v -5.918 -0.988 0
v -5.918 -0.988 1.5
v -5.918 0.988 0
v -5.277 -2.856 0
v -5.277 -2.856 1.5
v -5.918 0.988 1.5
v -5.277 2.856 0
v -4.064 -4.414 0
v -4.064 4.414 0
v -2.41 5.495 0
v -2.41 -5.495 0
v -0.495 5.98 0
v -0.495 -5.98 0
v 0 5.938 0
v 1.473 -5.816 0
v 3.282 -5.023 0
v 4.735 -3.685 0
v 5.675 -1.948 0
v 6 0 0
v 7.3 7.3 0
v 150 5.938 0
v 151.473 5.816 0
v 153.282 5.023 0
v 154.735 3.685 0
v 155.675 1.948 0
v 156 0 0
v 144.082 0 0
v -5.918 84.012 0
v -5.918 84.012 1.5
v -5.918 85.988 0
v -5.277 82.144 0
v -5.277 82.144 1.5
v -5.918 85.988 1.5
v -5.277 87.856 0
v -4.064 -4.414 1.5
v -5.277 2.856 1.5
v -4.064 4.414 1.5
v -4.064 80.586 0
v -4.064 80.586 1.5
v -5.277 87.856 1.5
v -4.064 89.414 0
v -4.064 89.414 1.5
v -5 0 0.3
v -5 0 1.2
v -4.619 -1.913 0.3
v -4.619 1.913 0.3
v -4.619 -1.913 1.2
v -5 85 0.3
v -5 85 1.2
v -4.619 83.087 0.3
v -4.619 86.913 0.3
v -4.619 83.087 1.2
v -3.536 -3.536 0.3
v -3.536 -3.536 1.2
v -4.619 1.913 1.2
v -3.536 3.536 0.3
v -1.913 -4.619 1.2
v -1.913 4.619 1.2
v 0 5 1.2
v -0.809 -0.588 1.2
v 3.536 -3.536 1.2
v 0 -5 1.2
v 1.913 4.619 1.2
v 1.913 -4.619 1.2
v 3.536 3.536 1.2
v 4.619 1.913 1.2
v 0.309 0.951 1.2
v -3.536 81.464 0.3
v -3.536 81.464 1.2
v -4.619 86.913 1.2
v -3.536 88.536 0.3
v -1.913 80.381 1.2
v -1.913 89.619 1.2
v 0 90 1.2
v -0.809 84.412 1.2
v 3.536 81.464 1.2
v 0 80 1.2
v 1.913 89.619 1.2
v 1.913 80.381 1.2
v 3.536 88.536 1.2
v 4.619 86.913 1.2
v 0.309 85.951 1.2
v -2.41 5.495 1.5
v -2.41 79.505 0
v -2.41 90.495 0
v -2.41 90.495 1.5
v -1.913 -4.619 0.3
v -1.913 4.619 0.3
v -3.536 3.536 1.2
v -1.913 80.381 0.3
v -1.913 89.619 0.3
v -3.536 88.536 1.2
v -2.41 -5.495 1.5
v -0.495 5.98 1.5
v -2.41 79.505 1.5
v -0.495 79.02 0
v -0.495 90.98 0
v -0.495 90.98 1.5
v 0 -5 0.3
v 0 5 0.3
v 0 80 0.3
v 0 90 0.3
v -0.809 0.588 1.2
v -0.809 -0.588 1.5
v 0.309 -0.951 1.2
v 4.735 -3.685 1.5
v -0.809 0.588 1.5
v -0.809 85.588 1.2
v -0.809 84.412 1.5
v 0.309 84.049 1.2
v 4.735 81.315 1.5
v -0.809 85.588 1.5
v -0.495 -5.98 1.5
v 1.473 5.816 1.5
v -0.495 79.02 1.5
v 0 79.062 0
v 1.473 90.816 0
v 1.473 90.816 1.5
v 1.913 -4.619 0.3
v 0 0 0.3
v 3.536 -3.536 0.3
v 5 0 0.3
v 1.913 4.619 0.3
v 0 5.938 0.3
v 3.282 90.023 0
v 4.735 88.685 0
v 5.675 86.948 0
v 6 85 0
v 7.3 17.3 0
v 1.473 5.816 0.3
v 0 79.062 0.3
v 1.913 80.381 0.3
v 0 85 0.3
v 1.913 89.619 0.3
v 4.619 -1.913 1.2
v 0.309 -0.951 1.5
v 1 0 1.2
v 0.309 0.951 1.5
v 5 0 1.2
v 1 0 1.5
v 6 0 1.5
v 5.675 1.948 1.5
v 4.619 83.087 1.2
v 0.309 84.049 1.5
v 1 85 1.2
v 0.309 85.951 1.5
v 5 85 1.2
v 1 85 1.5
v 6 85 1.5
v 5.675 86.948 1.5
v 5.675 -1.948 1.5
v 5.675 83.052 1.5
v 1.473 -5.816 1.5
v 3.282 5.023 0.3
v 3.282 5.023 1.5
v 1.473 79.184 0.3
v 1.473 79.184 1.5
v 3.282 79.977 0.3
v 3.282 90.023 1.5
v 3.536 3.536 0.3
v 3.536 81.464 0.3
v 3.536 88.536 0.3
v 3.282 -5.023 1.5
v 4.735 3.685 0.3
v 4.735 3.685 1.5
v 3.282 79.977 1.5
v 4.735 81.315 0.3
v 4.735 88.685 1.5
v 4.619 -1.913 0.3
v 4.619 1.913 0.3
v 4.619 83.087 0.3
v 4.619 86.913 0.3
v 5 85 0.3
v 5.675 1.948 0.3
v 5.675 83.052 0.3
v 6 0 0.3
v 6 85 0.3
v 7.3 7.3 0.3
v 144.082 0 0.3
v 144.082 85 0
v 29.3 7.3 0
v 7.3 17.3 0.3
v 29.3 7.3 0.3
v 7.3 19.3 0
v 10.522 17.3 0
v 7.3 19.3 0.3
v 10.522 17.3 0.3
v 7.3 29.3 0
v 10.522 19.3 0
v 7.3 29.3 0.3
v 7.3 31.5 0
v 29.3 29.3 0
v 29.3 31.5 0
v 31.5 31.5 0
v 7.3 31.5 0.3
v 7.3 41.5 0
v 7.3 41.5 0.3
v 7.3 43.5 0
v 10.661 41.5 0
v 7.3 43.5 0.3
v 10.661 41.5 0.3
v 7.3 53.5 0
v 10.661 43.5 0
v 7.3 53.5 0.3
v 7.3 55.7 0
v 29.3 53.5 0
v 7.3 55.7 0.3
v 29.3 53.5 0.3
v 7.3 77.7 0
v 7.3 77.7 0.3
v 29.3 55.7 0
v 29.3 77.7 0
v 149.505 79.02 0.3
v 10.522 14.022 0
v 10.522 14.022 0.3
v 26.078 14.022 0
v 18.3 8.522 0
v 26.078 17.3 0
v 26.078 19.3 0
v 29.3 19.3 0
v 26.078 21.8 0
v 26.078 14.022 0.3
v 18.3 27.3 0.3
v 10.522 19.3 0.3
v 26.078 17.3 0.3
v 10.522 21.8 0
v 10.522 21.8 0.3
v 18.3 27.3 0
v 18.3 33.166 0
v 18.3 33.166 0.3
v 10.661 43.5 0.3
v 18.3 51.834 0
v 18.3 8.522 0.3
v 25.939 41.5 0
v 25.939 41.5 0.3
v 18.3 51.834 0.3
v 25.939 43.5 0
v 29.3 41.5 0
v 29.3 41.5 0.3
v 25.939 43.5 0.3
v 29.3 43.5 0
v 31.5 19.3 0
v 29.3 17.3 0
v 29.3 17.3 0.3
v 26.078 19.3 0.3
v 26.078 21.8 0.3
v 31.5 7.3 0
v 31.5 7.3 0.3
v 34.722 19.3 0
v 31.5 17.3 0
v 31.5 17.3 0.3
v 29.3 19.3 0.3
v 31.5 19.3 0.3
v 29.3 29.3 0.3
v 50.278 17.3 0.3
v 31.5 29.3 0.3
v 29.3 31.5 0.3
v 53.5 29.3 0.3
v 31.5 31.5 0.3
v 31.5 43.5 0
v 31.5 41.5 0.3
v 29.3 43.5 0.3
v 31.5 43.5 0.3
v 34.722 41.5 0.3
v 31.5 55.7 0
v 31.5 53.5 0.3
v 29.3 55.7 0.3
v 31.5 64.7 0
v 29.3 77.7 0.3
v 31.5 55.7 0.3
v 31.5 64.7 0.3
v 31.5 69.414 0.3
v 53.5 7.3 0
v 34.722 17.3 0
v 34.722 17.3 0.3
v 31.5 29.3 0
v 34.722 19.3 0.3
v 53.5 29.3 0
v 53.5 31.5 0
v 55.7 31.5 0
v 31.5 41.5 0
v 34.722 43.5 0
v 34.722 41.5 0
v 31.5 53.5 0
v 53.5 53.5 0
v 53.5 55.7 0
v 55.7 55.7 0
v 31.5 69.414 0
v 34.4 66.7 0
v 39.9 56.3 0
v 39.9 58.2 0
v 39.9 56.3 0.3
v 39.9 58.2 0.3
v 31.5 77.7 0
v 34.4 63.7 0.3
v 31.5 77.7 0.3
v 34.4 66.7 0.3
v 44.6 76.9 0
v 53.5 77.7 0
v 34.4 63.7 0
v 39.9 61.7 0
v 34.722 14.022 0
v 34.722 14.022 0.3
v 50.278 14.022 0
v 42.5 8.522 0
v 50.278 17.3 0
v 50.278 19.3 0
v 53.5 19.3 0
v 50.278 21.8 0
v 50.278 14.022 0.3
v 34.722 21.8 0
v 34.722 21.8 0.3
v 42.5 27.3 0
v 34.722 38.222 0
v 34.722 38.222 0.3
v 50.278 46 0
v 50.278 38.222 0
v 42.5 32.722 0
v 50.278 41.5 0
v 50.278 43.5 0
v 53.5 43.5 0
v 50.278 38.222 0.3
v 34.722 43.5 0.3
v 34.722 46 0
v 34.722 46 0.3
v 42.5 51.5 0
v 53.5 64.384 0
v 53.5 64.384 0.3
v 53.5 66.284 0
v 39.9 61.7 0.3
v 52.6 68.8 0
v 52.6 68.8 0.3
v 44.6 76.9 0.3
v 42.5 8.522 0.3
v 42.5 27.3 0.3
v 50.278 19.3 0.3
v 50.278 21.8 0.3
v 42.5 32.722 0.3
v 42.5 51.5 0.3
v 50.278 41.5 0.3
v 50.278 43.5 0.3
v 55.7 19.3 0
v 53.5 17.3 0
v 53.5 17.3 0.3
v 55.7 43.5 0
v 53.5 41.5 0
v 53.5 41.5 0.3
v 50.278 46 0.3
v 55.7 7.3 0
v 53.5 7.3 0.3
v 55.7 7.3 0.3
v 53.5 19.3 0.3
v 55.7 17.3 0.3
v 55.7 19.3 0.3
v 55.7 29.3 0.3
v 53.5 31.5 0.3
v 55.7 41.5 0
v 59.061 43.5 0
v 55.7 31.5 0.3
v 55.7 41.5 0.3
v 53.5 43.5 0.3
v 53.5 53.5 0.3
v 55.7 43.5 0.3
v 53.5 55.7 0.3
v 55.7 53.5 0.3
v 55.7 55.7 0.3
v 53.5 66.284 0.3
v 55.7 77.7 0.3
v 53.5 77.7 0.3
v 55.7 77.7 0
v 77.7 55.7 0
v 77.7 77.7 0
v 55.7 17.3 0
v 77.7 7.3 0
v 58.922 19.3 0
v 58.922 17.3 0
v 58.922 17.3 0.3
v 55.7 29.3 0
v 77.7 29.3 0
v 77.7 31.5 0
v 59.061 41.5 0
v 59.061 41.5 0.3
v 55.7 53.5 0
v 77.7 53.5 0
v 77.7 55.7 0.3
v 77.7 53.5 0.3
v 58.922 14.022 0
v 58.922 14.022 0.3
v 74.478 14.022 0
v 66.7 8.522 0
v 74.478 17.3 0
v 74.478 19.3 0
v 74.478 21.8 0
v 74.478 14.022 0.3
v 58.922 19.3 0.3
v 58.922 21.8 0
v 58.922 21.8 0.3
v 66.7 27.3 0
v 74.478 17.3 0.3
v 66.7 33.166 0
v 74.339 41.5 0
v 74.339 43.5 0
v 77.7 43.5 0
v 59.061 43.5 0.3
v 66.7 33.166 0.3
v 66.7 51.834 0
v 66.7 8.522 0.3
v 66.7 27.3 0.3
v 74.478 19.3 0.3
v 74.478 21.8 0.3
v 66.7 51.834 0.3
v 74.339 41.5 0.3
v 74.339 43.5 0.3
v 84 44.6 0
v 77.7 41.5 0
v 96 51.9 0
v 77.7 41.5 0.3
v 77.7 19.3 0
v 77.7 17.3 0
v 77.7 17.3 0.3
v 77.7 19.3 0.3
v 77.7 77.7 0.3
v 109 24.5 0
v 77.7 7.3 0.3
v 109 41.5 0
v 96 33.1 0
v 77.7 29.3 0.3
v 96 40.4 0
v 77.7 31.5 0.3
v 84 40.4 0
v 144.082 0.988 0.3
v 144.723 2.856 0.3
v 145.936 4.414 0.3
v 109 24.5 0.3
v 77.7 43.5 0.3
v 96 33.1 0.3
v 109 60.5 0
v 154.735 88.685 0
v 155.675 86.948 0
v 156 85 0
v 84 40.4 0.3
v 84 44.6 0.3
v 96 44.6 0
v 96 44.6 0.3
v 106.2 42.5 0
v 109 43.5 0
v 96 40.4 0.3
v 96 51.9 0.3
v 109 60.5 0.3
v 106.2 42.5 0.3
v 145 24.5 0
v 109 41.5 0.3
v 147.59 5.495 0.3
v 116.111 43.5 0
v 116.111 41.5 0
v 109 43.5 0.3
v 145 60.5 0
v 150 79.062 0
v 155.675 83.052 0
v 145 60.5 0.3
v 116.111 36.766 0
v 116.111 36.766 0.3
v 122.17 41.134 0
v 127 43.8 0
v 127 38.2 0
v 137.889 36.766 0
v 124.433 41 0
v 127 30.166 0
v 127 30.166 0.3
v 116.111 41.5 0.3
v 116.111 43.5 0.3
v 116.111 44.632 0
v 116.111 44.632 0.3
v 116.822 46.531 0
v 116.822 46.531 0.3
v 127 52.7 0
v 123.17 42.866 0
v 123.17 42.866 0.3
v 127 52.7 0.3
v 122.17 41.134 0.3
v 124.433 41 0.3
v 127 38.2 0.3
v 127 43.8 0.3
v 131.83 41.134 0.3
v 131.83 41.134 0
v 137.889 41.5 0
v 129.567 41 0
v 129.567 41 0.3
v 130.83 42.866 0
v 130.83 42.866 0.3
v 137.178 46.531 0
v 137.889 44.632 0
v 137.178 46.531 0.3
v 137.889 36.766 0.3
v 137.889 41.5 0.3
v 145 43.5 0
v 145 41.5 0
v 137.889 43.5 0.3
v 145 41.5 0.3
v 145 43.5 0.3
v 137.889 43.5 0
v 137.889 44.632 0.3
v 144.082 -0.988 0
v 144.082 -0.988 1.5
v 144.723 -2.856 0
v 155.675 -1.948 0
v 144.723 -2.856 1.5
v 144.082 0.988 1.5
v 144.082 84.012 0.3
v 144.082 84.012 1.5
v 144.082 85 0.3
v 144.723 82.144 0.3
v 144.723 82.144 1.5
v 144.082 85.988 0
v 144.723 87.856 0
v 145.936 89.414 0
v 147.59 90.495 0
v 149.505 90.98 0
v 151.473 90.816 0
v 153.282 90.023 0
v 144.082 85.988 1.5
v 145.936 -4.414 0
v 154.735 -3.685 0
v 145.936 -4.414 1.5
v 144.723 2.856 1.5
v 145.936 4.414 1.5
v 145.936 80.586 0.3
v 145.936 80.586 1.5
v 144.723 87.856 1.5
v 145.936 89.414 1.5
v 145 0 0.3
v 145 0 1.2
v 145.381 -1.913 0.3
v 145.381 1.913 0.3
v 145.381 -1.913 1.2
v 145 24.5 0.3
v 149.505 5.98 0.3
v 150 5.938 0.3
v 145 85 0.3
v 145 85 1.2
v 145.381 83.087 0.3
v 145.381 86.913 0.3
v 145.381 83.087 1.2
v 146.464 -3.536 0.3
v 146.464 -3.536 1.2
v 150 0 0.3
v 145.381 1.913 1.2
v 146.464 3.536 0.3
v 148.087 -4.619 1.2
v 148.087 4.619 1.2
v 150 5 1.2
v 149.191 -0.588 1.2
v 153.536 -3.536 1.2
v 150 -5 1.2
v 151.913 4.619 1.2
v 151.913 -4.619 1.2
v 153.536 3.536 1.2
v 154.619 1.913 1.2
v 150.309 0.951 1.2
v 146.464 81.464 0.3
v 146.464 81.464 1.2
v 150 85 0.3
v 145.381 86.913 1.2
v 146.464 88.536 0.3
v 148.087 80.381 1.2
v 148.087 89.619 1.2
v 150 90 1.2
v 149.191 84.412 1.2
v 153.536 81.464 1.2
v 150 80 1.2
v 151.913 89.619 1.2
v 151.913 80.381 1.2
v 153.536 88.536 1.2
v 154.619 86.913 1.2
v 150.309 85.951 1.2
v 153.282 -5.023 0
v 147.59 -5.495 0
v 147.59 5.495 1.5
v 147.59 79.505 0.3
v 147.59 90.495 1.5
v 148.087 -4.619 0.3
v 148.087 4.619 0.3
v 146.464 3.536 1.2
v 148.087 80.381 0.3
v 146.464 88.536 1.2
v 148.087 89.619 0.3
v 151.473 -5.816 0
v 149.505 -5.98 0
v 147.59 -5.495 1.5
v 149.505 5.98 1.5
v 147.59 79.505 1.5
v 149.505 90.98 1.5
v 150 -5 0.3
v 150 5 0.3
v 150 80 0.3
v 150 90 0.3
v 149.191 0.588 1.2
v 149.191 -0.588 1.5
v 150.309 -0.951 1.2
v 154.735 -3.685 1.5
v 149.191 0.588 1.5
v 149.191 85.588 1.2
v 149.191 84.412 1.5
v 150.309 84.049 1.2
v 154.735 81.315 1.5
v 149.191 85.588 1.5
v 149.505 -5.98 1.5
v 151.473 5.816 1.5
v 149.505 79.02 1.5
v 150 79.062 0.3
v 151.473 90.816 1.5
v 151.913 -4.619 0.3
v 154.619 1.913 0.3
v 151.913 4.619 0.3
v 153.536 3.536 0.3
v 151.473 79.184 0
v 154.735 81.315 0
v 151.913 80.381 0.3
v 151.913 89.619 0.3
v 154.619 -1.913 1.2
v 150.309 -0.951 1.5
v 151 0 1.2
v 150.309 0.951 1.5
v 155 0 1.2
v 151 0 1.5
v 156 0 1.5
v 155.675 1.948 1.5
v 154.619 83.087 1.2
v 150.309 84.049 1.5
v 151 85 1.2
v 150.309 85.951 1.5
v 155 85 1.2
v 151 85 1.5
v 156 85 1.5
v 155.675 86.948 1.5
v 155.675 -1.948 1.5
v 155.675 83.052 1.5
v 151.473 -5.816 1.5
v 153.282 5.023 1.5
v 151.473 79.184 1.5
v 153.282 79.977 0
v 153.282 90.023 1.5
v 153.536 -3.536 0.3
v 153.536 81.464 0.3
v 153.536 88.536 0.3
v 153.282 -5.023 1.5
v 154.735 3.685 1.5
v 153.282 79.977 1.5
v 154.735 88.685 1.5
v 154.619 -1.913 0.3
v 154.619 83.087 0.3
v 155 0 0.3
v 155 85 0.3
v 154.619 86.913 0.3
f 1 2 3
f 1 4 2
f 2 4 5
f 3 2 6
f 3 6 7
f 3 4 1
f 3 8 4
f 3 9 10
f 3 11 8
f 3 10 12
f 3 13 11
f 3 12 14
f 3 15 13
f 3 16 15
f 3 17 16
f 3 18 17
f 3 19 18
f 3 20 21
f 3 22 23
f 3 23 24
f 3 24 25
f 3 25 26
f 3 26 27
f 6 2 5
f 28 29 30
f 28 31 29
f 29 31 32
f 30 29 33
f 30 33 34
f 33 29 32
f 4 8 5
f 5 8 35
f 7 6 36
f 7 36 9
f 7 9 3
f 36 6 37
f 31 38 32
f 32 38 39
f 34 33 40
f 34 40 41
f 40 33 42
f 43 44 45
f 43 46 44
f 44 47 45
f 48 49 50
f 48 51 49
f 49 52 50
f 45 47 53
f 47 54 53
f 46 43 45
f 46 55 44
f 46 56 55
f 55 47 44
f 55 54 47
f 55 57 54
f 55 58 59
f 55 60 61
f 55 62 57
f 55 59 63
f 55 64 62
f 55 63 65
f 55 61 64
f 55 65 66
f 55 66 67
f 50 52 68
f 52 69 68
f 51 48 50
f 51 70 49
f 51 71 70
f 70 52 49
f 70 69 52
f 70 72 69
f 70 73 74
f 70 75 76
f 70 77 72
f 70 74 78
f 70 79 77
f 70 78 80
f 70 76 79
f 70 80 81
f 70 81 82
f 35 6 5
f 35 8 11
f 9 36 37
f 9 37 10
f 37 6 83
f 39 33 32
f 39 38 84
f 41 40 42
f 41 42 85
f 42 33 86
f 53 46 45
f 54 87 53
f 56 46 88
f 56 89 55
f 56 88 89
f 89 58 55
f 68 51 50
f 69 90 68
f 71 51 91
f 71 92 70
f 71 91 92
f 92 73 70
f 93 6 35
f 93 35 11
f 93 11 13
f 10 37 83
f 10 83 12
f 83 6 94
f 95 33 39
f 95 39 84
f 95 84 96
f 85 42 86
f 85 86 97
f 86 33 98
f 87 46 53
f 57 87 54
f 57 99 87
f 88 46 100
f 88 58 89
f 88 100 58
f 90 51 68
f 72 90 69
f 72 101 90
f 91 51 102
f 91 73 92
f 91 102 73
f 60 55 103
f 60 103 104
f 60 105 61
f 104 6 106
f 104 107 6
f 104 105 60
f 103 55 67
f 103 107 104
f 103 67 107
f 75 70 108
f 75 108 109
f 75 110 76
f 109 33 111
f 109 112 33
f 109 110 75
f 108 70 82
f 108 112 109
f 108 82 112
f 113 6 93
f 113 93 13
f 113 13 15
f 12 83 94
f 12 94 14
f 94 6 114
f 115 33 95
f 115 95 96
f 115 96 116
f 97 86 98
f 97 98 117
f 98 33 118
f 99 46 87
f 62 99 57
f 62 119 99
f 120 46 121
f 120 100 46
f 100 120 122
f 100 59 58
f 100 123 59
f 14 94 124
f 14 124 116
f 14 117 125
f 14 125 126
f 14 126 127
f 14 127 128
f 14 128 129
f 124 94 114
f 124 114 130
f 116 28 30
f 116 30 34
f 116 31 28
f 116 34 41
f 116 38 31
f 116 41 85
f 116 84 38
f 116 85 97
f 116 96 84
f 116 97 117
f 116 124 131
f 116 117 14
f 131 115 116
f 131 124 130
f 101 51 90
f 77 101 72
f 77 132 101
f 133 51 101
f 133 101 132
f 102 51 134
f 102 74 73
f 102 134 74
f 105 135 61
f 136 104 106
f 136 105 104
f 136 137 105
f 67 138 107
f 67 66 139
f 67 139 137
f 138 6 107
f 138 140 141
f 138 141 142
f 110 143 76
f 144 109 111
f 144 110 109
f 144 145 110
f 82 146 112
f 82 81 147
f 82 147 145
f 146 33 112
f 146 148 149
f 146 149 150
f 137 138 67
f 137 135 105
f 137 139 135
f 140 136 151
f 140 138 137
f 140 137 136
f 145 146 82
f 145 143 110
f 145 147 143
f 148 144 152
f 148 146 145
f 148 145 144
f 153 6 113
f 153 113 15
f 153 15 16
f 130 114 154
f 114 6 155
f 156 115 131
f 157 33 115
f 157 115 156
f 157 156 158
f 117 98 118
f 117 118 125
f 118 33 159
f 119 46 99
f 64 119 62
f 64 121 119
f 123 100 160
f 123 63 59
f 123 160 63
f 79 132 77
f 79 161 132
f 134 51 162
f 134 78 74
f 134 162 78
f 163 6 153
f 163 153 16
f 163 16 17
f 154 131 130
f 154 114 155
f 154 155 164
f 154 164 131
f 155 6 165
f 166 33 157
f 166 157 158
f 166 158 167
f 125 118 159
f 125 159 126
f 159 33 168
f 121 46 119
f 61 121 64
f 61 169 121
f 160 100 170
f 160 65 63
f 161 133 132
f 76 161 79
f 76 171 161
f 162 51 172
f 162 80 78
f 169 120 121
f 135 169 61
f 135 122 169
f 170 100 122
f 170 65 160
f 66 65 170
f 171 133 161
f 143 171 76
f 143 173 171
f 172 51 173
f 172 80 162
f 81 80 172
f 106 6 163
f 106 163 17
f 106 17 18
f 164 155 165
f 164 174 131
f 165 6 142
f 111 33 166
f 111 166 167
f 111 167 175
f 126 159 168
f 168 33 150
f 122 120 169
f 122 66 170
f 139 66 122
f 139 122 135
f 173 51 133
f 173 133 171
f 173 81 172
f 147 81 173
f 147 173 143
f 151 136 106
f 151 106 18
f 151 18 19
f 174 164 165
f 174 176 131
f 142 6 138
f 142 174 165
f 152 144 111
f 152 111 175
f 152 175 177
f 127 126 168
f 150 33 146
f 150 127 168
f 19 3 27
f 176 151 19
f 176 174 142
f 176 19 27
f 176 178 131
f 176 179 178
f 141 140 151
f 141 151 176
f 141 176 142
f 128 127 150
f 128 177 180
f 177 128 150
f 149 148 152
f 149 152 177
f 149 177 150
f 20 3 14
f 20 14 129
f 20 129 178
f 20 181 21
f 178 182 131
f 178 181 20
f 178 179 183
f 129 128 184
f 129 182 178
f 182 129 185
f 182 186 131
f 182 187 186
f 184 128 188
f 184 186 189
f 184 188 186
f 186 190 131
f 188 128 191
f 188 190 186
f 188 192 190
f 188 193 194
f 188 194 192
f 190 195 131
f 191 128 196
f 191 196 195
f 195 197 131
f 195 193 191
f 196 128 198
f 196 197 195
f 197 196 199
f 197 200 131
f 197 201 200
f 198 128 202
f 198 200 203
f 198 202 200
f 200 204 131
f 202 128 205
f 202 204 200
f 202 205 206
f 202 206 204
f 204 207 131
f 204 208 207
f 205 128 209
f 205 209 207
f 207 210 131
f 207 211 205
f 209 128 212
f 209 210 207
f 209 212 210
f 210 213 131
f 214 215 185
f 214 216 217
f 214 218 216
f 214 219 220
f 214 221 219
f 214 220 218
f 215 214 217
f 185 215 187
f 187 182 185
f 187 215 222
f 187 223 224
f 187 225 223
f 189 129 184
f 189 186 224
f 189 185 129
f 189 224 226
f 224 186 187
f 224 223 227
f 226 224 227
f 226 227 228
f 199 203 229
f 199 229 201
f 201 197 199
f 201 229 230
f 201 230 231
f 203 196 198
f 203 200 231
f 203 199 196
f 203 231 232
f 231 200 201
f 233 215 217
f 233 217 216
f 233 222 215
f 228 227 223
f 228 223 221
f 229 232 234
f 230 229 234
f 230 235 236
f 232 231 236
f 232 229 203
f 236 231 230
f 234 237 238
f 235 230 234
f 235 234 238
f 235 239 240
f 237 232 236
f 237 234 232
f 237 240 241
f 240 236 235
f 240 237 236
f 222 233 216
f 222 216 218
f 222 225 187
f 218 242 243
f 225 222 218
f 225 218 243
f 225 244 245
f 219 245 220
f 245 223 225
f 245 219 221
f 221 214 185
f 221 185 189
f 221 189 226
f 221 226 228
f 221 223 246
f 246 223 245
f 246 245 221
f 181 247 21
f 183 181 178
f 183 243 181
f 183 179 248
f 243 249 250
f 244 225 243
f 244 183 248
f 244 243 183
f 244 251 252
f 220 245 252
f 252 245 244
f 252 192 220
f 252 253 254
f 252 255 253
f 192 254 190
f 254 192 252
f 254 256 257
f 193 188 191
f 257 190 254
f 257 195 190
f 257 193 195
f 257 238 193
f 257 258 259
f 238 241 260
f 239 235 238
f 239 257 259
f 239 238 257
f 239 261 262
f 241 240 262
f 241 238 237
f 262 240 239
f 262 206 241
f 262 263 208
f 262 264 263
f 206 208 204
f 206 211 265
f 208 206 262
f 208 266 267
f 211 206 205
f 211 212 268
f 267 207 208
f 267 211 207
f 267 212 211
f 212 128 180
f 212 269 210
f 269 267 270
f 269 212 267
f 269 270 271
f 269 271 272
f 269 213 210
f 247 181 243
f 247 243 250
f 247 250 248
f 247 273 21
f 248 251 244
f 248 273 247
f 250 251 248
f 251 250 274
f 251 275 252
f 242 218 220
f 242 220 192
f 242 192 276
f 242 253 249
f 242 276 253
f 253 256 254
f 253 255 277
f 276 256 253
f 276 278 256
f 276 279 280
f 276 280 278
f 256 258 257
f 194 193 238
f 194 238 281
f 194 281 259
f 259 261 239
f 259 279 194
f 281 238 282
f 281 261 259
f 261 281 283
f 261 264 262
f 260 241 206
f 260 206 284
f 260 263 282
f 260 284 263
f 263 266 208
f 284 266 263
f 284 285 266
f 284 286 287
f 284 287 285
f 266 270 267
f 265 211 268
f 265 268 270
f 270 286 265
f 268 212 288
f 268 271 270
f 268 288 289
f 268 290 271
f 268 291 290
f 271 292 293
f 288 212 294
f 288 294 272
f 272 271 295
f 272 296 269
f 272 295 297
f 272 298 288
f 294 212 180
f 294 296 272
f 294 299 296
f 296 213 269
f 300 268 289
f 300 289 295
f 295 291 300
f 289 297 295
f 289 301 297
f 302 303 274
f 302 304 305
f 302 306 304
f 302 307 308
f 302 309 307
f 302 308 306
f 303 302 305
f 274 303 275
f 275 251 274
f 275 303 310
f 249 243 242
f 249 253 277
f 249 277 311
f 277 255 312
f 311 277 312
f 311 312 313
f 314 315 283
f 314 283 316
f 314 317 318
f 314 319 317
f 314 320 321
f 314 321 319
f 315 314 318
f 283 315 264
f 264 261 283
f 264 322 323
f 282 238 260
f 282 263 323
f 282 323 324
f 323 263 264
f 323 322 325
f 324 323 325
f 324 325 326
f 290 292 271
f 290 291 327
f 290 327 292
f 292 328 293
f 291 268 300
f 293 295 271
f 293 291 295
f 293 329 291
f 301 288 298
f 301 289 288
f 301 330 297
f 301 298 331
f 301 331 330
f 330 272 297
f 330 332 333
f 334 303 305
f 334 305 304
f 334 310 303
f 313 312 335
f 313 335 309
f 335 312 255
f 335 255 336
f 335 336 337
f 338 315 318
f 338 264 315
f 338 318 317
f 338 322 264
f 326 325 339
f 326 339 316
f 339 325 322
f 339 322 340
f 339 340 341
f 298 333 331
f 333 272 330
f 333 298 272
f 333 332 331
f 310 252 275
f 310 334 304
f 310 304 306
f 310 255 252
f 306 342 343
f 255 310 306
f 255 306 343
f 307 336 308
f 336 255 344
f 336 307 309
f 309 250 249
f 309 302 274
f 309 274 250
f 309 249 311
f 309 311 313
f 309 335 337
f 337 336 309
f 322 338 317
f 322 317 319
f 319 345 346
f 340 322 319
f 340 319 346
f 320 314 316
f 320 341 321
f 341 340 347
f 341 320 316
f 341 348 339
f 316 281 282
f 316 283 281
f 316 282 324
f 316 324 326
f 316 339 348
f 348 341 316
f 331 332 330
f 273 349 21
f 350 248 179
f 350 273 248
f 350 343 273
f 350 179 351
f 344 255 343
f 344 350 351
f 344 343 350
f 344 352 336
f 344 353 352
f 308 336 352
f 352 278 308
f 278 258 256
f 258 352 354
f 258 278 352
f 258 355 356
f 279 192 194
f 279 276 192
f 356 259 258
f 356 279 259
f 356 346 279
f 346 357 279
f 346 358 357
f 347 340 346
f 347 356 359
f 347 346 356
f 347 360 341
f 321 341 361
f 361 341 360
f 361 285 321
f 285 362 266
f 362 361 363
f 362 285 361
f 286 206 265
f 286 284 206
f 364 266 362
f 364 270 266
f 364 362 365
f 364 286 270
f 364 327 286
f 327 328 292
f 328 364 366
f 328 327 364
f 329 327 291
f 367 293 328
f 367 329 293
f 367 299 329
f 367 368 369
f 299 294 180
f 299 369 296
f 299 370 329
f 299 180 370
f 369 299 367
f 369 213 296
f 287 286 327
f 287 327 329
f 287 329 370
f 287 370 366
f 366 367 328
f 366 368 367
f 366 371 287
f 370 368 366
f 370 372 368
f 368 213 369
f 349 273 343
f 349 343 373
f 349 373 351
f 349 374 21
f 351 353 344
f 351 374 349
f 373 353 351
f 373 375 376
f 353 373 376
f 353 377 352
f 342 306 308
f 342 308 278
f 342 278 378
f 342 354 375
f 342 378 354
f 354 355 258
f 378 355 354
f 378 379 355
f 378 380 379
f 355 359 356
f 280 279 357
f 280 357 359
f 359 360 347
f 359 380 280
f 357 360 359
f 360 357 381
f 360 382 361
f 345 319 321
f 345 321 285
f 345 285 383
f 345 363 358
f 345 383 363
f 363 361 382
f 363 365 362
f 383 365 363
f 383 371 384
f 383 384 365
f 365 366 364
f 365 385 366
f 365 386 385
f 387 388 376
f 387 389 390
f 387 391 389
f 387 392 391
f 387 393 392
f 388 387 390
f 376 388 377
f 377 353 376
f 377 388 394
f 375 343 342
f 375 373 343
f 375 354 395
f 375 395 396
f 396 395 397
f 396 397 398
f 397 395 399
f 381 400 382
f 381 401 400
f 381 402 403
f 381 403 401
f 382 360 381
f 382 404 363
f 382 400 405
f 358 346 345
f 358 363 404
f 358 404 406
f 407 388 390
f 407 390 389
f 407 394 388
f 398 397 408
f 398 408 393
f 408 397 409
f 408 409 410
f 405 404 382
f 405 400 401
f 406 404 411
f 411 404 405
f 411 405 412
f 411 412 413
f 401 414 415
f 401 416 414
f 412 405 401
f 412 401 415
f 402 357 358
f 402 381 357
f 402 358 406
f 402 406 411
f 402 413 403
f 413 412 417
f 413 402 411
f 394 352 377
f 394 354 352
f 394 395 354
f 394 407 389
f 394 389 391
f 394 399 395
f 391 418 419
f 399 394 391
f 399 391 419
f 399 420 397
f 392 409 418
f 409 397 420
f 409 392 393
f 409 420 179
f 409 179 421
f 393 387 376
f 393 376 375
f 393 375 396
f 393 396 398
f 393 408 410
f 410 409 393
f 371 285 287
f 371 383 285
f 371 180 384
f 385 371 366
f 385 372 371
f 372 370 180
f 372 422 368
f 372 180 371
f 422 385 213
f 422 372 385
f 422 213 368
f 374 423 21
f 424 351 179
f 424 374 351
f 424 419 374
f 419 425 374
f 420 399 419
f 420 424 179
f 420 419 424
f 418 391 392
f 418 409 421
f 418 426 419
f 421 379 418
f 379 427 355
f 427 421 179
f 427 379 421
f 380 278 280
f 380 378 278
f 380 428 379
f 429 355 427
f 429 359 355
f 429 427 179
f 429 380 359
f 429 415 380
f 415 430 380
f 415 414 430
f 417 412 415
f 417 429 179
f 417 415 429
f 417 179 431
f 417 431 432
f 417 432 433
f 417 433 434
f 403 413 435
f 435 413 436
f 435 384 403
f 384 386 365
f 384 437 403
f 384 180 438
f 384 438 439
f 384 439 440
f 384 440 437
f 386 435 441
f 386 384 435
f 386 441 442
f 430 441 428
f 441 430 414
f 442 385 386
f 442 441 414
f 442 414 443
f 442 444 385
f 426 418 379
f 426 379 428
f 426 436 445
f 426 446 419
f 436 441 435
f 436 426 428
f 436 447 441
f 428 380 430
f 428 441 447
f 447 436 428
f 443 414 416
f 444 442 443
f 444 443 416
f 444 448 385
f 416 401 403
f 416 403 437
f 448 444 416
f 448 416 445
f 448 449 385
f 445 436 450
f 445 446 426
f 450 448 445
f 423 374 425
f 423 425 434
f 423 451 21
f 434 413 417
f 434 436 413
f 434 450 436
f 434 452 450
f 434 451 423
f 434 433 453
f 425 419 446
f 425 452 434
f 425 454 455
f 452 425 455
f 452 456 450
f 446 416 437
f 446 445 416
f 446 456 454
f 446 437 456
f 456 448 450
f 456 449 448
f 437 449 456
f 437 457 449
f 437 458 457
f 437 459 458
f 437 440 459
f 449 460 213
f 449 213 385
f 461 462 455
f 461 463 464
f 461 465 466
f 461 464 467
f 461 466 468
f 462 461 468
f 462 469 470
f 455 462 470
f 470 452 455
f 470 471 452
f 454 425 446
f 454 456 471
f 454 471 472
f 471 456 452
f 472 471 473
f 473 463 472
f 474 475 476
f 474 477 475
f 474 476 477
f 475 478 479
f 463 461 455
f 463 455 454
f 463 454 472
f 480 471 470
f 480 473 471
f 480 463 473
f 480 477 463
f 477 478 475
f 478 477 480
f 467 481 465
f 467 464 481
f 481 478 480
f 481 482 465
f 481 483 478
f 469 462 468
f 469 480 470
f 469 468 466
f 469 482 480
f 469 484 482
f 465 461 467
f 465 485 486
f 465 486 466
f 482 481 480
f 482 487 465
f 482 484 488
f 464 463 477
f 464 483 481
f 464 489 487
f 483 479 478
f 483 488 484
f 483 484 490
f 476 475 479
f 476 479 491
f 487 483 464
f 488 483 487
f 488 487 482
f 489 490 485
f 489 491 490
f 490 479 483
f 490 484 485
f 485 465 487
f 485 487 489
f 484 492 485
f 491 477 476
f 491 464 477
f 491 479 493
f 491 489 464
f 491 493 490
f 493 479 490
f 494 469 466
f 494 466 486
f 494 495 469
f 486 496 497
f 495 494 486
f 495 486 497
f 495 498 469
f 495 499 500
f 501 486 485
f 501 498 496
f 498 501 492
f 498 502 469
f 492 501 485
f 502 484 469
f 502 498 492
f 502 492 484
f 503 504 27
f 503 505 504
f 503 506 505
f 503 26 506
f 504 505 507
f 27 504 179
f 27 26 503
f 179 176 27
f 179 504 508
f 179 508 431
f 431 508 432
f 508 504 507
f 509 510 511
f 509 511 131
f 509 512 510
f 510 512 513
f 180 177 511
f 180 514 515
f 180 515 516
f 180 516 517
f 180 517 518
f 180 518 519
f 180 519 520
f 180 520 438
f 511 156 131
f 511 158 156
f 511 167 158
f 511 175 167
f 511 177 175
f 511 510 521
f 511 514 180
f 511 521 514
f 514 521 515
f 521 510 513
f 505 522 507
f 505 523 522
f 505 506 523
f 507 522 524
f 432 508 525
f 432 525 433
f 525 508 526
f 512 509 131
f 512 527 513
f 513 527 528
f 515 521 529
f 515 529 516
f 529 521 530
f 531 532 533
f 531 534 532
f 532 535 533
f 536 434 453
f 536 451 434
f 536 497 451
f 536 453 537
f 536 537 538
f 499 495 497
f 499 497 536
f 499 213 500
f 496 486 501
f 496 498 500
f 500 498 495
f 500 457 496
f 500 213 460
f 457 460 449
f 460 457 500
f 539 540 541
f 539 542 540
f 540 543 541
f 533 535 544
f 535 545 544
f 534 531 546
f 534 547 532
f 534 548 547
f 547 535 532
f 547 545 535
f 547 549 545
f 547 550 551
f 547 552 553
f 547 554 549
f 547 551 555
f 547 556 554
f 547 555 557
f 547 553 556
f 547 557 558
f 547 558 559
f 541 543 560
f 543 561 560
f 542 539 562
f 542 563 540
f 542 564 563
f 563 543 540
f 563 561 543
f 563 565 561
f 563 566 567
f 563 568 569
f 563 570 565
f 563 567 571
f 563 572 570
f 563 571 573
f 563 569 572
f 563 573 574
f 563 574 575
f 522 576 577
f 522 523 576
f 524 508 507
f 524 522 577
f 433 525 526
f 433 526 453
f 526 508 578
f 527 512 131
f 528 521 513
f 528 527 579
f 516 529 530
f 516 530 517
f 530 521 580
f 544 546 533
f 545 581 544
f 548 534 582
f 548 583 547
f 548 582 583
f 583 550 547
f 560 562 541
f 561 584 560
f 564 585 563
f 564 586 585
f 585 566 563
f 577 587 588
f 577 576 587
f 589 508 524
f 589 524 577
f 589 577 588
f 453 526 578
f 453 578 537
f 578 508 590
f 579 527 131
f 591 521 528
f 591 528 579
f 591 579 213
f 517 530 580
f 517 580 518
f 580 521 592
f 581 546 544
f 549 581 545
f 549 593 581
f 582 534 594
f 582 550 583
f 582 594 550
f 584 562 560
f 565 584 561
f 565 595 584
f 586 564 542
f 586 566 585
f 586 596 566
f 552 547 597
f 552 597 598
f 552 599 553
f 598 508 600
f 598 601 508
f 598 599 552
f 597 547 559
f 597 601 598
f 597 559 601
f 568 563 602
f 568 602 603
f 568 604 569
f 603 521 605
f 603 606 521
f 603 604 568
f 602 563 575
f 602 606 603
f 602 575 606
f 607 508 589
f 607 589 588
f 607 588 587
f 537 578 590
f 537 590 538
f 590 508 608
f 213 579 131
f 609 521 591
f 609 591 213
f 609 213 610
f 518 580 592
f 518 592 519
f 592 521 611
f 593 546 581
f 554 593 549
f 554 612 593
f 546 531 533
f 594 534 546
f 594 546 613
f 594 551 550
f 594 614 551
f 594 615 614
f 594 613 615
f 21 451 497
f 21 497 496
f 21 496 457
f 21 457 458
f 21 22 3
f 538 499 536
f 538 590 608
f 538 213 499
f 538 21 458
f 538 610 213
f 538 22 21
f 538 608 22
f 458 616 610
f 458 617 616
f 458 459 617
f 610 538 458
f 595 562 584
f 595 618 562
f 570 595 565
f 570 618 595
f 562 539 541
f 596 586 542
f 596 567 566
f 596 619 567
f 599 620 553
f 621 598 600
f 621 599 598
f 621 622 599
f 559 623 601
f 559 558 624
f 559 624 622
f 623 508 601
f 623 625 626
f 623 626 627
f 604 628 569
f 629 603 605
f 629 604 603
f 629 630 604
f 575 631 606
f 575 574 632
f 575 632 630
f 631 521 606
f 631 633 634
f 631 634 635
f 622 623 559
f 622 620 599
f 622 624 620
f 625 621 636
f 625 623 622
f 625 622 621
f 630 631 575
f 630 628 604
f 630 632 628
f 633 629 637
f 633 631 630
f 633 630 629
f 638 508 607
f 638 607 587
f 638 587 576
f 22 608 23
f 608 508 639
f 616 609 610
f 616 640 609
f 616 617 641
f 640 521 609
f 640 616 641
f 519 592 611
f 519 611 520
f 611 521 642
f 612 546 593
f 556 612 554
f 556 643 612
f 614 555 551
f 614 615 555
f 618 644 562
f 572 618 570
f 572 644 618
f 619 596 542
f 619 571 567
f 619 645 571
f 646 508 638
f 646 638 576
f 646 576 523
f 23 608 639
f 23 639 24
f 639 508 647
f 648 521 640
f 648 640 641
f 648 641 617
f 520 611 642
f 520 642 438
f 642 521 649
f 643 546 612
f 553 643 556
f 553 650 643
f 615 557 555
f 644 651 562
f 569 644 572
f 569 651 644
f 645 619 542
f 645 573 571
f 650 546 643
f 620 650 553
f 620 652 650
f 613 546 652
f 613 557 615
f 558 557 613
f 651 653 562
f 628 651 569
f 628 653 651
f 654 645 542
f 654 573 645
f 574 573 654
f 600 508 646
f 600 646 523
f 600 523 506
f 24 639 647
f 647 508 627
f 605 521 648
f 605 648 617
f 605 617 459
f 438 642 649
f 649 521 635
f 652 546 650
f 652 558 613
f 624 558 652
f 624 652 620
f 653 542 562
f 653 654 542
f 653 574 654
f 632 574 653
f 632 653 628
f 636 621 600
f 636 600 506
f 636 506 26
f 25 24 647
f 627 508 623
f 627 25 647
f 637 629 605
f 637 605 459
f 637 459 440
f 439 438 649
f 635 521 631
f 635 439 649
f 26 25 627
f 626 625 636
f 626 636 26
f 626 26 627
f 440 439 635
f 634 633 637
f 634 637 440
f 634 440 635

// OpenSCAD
include <BOSL/constants.scad>
use <BOSL/transforms.scad>
use <BOSL/shapes.scad>
use <BOSL/masks.scad>
use <BOSL/math.scad>

lh=0.1;

w=150;
d=85;
h=up(0.3);

stencil();

module stencil() {
  union() {
    difference() {
      cuboid([w,d,h],align=V_ALLPOS);
      translate([d/2,d/2]) {
        cell(-1, 1) blank();
        cell( 0, 1) book();
        cell( 1, 1) blank();
        cell(-1, 0) diamond();
        cell( 0, 0) obsidian();
        cell( 1, 0) diamond();
        cell(-1,-1) obsidian();
        cell( 0,-1) obsidian();
        cell( 1,-1) obsidian();
      }
      translate([84,d/2]) arrow();
      translate([109+36/2,d/2]) table();
    }
    for(i=[0,w]) for(j=[0,d]) translate([i,j]) magnet_holder();
  }
}

module cell(i,j) {
  cell=22+2.2;

  translate([cell*i,cell*j]) children();
}

module blank() {
  cuboid([22,22,100]);
}

module book() {
  difference() {
    cuboid([22,22,100]);
    linear_extrude(200) polygon([
      [-14,1], [2.1,10.2], [10.1,2.1], [-2.6,-5], [-8.1,0],
      [-8.1,-3], [-2.6,-8.5], [11.7,0], [11.7,-1.9], [-2.6,-10.4],
    ]);
  }
}

module diamond() {
  difference() {
    cuboid([22,22,100]);
    union() {
      diamond_prof();
      cuboid([25,2,100]);
    }
  }
}

module obsidian() {
  difference() {
    cuboid([22,22,100]);
    union() {
      ymove(-2) linear_extrude(200) zmove(-100) projection() xrot(45) zrot(45) scale(0.5) cube(22);
      cuboid([25,2,100]);
    }
  }
}

module arrow() {
  zmove(-50) linear_extrude(100) polygon(points=[
    [0,0],
    [0,2.1],
    [12,2.1],
    [12,9.4],
    [22.2,0],
    [12,-9.4],
    [12,-2.1],
    [0,-2.1],
  ]);
}

module table() {
  difference() {
    difference() {
      cuboid([36,36,100]);
      xspread(n=2,l=28) cuboid([9,2,100]);
    }
    difference() {
      ymove(-3) linear_extrude(200) zmove(-100) projection() scale([0.7,0.6,0.6]) xrot(45) zrot(45) cube(22);
      ymove(-1.5) scale(0.3) diamond_prof();
      ymove(-3) for(i=[-60,60]) zrot(i) ymove(5) cuboid([2,10,300],align=V_BACK);
    }
  }
}

module diamond_prof() {
  scale([0.55,0.6,1]) zrot(45) cuboid([22,22,100]);
}

module magnet_holder() {
  difference() {
    magh=up(3.5/4);

    cyl(d=12,h=2*h+magh,align=V_TOP);
    zmove(h) cyl(d=10,h=magh,align=V_TOP);
    zmove(h) cyl(d=2,h=100,align=V_TOP);
  }
}

function up(x)=ceil(x/lh)*lh;
